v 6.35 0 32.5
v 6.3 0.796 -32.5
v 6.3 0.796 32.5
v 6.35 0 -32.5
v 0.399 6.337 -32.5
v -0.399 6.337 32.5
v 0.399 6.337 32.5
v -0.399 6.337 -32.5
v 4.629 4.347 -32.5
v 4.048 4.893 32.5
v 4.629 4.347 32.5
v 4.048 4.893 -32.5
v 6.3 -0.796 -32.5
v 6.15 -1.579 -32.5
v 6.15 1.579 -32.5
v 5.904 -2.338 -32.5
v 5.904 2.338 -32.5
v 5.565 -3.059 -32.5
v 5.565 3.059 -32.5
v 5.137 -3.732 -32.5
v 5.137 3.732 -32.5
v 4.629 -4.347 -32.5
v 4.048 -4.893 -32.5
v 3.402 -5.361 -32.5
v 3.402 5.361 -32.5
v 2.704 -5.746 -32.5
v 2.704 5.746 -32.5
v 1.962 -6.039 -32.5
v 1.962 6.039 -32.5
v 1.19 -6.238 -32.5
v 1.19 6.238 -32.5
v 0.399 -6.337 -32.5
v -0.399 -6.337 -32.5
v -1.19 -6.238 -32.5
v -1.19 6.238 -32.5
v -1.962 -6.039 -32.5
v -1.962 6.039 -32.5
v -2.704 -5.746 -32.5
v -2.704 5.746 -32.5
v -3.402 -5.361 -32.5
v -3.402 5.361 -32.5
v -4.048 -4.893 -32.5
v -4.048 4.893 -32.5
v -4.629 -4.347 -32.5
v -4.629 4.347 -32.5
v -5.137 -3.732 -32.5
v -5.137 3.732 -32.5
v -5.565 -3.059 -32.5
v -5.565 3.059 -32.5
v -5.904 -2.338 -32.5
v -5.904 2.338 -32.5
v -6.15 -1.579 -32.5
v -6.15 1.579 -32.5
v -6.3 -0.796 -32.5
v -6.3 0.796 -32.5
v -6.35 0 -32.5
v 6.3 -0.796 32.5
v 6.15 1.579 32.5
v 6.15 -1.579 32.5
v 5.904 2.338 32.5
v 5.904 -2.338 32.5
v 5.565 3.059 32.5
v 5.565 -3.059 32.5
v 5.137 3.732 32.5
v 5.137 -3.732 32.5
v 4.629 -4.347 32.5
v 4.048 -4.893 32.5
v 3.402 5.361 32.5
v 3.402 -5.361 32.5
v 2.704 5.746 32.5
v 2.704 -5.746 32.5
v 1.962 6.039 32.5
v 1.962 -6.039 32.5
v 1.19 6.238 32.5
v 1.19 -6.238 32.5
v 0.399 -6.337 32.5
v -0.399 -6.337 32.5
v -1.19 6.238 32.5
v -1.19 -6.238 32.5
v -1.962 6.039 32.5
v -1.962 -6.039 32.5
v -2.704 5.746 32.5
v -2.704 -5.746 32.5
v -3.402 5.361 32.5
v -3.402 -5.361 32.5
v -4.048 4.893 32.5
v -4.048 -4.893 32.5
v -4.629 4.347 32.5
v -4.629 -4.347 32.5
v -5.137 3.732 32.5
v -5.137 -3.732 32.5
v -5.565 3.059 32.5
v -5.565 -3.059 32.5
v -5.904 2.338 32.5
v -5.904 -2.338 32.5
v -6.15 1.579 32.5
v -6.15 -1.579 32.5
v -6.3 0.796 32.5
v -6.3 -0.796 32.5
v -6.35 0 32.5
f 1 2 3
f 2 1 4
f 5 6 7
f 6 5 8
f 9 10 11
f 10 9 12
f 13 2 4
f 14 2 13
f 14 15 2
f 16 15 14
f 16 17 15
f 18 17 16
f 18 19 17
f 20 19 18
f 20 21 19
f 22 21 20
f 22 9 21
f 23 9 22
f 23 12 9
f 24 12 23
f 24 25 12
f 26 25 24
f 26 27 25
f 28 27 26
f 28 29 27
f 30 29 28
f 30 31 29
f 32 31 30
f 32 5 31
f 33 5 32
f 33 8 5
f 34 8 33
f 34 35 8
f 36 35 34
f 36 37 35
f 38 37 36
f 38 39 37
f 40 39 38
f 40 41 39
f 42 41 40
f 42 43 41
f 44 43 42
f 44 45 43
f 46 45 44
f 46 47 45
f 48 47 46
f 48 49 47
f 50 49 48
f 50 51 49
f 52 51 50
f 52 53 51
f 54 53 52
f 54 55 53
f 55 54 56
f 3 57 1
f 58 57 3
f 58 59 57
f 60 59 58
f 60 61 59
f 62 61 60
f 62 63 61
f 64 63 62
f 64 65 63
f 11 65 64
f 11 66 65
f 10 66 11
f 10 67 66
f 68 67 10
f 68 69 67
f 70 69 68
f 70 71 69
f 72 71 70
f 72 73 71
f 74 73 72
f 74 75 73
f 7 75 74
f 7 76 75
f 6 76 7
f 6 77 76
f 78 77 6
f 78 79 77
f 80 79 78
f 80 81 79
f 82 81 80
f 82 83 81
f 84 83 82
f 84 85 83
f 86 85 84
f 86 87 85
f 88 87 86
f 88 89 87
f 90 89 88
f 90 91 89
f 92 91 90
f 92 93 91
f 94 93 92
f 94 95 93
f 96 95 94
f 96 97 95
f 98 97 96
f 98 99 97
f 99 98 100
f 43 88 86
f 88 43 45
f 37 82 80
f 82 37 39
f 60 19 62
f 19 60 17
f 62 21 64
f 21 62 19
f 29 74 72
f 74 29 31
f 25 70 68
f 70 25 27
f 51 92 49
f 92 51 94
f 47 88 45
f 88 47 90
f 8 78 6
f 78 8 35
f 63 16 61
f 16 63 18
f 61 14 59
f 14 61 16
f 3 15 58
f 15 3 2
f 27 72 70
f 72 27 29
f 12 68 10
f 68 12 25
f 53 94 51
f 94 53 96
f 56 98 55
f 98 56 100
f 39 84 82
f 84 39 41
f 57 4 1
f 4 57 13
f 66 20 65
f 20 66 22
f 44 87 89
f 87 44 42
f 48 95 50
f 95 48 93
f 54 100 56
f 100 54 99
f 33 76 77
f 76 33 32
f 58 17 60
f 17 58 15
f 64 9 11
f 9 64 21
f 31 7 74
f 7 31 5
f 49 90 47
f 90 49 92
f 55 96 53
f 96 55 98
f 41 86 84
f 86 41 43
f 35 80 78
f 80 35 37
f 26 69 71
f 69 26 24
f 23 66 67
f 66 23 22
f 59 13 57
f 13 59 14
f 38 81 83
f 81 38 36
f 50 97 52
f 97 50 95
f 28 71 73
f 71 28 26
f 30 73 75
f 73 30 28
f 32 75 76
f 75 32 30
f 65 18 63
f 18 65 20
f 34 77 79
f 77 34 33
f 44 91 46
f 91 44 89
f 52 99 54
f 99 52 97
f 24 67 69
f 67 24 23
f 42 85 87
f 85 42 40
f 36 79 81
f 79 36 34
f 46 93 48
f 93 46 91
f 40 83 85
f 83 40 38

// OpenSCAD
$fn = 50;


difference() {
	union() {
		translate(v = [0, 0, -32.5000000000]) {
			cylinder(h = 65, r = 6.3500000000);
		}
	}
	union() {
		translate(v = [0, 0, -100.0000000000]) {
			cylinder(h = 200, r = 0);
		}
	}
}
